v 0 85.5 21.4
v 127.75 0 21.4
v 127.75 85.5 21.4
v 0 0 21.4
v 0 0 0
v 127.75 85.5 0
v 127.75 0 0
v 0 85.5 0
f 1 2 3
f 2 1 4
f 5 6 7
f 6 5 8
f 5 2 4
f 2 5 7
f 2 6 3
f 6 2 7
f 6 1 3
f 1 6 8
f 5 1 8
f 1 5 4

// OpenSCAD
// Opentrons 96 Deep Well Temperature Module Adapter
// loadName: opentrons_96_deep_well_temp_mod_adapter
// Auto-generated by labware_to_stl.py from Opentrons V2 labware definition

$fn = 32;

difference() {
    // ── Labware body ──────────────────────────────────────────────
    cube([127.7500, 85.5000, 21.4000]);

    // ── Well cutouts ──────────────────────────────────────────────
}
